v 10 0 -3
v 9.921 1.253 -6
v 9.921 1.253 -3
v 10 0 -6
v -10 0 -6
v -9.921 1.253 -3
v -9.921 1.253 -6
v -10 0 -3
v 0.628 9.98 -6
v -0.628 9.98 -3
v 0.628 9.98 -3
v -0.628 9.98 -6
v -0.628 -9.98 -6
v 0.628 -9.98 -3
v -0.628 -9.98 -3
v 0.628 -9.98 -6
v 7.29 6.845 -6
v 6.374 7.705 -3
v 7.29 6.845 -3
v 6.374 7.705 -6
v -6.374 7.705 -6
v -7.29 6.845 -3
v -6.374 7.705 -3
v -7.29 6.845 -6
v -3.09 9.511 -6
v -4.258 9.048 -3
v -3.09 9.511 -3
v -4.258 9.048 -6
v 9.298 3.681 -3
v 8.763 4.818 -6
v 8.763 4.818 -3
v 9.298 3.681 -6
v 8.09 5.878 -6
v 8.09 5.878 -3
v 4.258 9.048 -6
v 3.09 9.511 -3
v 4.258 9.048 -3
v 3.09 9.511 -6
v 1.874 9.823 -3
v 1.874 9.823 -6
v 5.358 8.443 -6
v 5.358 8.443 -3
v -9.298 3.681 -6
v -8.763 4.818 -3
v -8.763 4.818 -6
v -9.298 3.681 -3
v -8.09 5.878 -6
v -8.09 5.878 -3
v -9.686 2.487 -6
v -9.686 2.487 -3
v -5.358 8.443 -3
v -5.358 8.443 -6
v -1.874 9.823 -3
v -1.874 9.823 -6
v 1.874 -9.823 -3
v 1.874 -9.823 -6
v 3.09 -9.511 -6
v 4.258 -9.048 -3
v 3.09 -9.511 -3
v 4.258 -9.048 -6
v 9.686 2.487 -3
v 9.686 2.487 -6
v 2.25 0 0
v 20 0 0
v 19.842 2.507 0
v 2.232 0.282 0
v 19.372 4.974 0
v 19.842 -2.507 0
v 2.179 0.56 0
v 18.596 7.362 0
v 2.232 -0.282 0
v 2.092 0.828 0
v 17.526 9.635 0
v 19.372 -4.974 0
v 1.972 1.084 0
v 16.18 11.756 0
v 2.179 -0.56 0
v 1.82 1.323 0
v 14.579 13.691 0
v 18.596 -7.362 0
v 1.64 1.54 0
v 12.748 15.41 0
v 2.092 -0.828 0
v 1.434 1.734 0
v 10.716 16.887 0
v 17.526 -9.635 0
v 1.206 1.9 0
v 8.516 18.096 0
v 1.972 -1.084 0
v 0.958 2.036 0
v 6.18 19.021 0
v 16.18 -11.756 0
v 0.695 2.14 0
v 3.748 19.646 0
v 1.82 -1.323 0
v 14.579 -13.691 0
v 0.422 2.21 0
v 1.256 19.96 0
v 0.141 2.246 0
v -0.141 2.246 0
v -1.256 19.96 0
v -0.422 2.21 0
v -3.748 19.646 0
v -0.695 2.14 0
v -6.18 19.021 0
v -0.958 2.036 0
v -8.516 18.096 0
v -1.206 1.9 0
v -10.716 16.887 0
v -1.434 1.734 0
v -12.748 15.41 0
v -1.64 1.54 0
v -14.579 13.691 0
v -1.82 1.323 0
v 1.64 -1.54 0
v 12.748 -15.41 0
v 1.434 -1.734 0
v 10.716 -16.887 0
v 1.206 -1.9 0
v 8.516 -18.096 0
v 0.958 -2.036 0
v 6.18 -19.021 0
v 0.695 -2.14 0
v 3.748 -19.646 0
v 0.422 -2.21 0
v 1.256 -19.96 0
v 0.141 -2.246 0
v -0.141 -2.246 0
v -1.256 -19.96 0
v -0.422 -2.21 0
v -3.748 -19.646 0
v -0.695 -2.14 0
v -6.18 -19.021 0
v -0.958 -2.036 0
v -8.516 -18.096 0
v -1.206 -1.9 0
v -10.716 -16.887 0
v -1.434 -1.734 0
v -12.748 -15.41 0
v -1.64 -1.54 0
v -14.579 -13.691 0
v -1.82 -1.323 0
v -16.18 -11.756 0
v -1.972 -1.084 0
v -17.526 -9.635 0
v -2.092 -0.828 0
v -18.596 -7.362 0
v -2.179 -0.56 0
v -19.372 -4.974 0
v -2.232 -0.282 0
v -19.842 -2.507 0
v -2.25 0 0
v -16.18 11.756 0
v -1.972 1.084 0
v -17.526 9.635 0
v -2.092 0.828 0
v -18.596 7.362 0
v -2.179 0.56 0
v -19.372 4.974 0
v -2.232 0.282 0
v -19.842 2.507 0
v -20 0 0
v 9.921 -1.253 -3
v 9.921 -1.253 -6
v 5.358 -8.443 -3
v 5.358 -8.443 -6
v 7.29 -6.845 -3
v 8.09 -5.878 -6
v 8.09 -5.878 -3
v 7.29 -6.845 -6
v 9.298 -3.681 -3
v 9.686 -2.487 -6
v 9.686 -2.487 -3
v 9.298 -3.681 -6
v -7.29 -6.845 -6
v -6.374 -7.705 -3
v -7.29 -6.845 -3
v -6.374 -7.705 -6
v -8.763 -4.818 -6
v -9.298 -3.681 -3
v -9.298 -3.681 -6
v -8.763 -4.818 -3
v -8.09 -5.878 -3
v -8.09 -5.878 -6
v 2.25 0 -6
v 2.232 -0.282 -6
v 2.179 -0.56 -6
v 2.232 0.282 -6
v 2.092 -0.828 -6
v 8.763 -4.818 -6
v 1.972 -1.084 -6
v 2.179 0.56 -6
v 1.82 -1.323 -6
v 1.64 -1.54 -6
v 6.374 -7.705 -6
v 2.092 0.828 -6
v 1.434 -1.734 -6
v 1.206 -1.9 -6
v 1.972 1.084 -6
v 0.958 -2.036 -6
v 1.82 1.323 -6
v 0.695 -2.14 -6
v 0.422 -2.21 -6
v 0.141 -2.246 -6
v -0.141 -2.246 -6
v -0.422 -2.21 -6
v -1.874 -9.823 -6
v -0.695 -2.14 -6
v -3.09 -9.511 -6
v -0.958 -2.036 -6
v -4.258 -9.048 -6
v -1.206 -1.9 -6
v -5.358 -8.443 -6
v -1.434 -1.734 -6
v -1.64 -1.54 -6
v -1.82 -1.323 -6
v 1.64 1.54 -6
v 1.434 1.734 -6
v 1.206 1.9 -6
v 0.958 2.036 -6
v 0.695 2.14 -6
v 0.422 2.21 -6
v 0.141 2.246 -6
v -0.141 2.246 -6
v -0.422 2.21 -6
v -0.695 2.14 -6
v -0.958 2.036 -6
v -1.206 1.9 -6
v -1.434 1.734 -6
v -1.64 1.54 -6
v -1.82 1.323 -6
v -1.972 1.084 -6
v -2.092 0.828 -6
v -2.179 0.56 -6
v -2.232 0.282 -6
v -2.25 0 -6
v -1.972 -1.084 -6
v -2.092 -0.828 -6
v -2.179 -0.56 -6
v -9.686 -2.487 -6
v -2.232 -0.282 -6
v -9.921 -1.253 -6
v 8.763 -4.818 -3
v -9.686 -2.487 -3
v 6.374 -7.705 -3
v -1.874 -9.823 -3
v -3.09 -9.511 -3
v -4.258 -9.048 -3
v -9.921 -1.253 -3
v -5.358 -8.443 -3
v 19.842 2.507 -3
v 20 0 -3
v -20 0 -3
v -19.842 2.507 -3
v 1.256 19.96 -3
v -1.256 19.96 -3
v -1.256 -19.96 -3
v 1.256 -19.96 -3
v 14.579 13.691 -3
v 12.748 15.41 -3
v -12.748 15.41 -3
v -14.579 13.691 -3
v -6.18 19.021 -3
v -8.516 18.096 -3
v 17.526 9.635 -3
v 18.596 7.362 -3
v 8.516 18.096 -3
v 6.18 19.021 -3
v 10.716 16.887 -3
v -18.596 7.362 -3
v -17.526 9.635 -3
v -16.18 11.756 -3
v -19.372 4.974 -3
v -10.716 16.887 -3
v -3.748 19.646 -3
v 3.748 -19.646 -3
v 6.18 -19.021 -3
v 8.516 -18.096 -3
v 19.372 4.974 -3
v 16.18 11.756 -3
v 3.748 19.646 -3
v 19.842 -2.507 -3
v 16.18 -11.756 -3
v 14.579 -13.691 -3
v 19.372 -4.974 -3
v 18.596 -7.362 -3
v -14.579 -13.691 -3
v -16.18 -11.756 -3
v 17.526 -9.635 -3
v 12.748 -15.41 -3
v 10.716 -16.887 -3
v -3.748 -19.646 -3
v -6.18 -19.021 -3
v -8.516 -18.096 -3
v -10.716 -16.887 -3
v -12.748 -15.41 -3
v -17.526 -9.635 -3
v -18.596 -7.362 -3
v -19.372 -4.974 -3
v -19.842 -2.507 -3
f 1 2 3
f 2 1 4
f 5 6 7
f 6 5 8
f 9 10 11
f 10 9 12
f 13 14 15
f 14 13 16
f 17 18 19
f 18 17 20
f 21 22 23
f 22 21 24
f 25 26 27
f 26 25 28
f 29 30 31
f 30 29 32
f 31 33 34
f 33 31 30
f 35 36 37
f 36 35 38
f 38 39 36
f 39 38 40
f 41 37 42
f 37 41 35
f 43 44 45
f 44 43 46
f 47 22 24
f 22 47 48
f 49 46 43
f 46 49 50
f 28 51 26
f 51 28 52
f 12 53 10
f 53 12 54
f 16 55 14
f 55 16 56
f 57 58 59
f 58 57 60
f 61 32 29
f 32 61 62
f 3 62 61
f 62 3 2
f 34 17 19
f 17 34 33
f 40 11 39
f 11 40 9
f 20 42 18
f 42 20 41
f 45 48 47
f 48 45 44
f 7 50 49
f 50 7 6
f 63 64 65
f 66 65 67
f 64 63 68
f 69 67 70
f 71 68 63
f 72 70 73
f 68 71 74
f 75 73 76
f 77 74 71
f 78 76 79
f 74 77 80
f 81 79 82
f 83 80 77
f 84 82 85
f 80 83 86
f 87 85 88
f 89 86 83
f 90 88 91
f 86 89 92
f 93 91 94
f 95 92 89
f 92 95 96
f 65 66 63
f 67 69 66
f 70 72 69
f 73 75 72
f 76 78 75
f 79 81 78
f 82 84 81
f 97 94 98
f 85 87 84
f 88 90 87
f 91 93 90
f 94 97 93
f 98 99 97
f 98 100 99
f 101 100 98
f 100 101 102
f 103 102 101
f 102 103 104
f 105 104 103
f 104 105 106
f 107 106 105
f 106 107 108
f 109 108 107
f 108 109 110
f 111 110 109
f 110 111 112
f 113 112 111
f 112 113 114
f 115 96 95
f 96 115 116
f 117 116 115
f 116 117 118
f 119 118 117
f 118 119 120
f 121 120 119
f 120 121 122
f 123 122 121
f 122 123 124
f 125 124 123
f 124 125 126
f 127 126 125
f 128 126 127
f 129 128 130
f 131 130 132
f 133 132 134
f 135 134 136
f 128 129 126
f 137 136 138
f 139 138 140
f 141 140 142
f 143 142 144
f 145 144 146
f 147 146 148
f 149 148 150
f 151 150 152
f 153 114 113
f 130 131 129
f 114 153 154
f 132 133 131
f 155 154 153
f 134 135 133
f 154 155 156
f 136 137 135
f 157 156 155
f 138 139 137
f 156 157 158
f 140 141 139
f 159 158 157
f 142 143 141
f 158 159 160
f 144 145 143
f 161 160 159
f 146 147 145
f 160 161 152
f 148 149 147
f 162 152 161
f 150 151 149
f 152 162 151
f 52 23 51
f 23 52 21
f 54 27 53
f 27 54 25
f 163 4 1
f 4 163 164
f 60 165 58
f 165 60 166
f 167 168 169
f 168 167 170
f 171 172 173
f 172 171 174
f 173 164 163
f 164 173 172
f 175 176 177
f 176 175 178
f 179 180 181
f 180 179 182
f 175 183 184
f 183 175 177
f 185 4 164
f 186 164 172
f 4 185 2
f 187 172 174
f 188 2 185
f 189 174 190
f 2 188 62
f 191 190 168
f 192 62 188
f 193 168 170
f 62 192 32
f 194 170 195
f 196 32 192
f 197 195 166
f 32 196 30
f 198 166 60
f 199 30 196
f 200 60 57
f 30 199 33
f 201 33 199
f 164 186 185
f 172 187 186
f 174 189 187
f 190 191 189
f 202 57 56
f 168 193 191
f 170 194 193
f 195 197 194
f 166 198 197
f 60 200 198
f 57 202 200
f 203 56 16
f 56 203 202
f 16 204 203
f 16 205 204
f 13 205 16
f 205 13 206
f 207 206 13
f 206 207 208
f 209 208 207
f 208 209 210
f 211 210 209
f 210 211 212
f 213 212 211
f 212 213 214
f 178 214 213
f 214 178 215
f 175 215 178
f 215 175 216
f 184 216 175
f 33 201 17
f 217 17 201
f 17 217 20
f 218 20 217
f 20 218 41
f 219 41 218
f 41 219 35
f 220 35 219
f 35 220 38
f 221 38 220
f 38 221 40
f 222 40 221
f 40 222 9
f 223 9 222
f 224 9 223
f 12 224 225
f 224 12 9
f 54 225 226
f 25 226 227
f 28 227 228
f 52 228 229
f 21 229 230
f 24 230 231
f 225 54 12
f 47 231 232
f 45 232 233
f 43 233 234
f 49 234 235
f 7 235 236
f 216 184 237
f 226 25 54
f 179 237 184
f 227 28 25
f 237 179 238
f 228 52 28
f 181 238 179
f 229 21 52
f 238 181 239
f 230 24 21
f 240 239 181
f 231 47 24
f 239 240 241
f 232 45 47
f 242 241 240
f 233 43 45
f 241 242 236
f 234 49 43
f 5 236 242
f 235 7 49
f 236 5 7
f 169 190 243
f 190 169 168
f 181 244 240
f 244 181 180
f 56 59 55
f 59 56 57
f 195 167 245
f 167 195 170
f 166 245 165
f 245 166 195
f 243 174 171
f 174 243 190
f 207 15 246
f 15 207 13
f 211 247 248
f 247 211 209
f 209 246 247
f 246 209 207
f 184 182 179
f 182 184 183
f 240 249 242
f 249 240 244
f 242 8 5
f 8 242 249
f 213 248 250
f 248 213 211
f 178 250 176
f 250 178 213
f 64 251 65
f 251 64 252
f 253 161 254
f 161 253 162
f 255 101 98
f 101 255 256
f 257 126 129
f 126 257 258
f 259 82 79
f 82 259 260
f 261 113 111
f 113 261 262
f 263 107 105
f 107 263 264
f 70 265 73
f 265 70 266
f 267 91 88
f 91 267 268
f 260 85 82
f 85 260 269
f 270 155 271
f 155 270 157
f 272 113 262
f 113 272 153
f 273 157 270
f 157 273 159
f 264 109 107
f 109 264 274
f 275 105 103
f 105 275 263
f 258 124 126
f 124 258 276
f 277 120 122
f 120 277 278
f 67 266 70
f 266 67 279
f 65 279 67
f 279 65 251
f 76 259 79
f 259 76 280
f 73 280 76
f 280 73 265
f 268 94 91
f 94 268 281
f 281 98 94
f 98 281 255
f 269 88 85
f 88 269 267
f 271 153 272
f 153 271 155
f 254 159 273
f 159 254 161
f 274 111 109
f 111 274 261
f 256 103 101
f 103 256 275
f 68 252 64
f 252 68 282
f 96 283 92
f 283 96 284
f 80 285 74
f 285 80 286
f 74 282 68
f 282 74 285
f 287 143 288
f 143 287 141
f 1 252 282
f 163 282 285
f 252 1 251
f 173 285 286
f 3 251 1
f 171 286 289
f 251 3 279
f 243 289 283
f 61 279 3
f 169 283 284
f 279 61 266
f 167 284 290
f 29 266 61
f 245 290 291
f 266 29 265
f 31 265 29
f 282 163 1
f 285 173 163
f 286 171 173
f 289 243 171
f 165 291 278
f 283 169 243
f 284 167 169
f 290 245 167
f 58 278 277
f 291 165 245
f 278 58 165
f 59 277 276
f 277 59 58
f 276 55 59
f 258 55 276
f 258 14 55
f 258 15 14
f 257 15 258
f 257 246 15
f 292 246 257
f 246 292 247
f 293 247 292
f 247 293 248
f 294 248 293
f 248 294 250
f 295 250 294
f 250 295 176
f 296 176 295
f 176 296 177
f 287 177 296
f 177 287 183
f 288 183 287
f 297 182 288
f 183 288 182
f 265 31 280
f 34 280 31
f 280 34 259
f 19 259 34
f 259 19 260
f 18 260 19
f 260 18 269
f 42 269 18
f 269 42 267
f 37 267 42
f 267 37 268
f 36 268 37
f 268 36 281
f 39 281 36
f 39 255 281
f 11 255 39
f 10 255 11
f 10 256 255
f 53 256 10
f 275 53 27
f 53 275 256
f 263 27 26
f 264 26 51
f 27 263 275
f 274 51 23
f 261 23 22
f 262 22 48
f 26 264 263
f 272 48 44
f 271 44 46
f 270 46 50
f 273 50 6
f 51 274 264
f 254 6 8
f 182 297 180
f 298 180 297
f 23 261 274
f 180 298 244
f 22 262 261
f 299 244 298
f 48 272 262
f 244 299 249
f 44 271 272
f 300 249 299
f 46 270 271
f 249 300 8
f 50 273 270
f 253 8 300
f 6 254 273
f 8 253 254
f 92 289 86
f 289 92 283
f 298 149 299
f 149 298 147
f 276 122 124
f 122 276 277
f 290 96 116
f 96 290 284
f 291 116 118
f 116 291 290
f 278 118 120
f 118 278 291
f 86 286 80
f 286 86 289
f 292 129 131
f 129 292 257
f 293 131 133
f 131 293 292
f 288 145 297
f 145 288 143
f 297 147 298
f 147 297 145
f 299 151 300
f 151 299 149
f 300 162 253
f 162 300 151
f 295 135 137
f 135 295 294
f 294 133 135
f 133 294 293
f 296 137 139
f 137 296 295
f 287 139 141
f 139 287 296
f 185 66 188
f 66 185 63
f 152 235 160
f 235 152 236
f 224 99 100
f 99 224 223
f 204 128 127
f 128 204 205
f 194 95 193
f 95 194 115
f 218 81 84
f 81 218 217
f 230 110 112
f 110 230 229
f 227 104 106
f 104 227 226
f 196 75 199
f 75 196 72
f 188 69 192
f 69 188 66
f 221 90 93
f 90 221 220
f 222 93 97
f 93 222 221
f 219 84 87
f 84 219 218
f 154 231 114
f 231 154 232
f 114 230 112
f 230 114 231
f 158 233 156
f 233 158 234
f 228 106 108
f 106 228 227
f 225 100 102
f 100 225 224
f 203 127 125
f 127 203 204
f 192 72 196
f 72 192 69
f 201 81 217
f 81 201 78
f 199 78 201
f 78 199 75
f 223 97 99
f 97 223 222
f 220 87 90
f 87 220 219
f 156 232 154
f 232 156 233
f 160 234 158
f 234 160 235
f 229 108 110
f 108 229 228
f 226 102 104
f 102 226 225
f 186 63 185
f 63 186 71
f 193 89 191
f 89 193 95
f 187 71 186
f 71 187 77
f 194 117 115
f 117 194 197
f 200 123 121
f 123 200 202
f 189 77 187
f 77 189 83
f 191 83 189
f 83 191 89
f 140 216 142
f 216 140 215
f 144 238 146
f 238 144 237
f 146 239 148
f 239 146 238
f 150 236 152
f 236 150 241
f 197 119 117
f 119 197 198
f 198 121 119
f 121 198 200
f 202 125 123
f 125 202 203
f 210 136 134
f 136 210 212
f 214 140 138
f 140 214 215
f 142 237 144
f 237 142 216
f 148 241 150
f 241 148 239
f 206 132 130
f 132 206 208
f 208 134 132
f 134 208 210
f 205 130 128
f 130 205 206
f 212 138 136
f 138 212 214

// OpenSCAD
$fn = 50;


difference() {
	union() {
		translate(v = [0, 0, -6.0000000000]) {
			cylinder(h = 6, r = 10.0000000000);
		}
		translate(v = [0, 0, -3.0000000000]) {
			cylinder(h = 3, r = 20.0000000000);
		}
	}
	union() {
		#translate(v = [0, 0, -6]) {
			cylinder(h = 6, r = 2.2500000000);
		}
	}
}
